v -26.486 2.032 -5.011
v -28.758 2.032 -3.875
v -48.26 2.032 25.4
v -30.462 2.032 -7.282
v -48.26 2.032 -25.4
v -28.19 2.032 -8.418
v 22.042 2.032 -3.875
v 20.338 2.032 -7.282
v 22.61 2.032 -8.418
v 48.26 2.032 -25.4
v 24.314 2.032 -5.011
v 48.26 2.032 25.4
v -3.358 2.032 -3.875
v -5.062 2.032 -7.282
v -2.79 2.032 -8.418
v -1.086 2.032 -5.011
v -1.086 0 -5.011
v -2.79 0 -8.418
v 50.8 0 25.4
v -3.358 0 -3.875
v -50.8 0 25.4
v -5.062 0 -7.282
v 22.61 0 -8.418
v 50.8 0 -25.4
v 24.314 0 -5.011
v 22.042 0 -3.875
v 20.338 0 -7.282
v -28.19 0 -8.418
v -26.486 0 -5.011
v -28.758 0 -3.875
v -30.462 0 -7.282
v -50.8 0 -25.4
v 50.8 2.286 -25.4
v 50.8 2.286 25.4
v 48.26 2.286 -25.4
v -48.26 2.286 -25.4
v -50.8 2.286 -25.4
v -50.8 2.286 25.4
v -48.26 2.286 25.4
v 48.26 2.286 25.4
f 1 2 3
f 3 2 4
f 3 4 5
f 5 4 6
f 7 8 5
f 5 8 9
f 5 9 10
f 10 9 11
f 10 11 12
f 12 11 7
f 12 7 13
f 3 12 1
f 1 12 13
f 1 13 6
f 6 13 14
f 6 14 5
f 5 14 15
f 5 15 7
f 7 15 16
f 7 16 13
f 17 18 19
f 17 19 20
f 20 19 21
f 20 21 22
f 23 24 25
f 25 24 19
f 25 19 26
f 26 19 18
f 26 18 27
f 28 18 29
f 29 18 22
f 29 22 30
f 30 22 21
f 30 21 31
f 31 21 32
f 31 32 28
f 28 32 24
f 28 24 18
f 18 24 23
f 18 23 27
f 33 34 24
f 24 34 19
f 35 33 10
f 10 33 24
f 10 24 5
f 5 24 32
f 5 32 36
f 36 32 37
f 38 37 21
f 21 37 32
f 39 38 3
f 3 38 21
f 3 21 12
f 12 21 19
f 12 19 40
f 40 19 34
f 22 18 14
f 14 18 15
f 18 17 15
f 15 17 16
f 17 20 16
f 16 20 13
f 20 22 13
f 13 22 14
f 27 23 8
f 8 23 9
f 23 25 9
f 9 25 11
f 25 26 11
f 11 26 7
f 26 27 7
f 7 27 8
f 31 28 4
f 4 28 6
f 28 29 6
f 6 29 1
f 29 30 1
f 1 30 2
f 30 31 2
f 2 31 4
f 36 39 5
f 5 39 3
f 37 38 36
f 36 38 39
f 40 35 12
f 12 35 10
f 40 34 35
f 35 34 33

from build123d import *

# Parameters (mm, degrees)
SKETCH1_W           = 101.6
SKETCH1_H           = 50.8
BOSS_EXTRUDE1_DEPTH = 2.032
CUT_EXTRUDE1_DEPTH  = 3.032
LPATTERN1_COUNT     = 2
LPATTERN1_PITCH     = 25.4
LPATTERN1_COL_COUNT = 2
LPATTERN1_COL_PITCH = 25.4
SKETCH4_W           = 2.54
SKETCH4_H           = 50.8
BOSS_EXTRUDE2_DEPTH = 0.254


with BuildPart() as part:
    # Sketch1 → Boss-Extrude1 (new body)
    with BuildSketch(Plane(origin=(0, 0, 0), x_dir=(1, 0, 0), z_dir=(0, 1, 0))):
        Rectangle(SKETCH1_W, SKETCH1_H)
    extrude(amount=BOSS_EXTRUDE1_DEPTH)

    # Sketch2 → Cut-Extrude1 (cut, through all)
    with BuildSketch(Plane(origin=(0, 2.032, 0), x_dir=(1, 0, 0), z_dir=(0, 1, 0))):
        Polygon((-5.061841618, 7.282181714), (-2.790094674, 8.418300469), (-1.085916542, 5.010680054), (-3.357663485, 3.874561299), align=None)
    cut_extrude1 = extrude(amount=-CUT_EXTRUDE1_DEPTH, mode=Mode.SUBTRACT)

    # LPattern1: Cut-Extrude1 ×2
    with Locations(*[(-i * LPATTERN1_PITCH, 0, 0) for i in range(1, LPATTERN1_COUNT)]):
        add(cut_extrude1, mode=Mode.SUBTRACT)

    # LPattern1 col: Cut-Extrude1 ×2
    with Locations(*[(i * LPATTERN1_COL_PITCH, 0, 0) for i in range(1, LPATTERN1_COL_COUNT)]):
        add(cut_extrude1, mode=Mode.SUBTRACT)

    # Sketch4 → Boss-Extrude2 (add)
    with BuildSketch(Plane(origin=(0, 2.032, 0), x_dir=(1, 0, 0), z_dir=(0, 1, 0))):
        with Locations((-49.53, 0)):
            Rectangle(SKETCH4_W, SKETCH4_H)
        with Locations((49.53, 0)):
            Rectangle(SKETCH4_W, SKETCH4_H)
    extrude(amount=BOSS_EXTRUDE2_DEPTH)


solid = part.part
